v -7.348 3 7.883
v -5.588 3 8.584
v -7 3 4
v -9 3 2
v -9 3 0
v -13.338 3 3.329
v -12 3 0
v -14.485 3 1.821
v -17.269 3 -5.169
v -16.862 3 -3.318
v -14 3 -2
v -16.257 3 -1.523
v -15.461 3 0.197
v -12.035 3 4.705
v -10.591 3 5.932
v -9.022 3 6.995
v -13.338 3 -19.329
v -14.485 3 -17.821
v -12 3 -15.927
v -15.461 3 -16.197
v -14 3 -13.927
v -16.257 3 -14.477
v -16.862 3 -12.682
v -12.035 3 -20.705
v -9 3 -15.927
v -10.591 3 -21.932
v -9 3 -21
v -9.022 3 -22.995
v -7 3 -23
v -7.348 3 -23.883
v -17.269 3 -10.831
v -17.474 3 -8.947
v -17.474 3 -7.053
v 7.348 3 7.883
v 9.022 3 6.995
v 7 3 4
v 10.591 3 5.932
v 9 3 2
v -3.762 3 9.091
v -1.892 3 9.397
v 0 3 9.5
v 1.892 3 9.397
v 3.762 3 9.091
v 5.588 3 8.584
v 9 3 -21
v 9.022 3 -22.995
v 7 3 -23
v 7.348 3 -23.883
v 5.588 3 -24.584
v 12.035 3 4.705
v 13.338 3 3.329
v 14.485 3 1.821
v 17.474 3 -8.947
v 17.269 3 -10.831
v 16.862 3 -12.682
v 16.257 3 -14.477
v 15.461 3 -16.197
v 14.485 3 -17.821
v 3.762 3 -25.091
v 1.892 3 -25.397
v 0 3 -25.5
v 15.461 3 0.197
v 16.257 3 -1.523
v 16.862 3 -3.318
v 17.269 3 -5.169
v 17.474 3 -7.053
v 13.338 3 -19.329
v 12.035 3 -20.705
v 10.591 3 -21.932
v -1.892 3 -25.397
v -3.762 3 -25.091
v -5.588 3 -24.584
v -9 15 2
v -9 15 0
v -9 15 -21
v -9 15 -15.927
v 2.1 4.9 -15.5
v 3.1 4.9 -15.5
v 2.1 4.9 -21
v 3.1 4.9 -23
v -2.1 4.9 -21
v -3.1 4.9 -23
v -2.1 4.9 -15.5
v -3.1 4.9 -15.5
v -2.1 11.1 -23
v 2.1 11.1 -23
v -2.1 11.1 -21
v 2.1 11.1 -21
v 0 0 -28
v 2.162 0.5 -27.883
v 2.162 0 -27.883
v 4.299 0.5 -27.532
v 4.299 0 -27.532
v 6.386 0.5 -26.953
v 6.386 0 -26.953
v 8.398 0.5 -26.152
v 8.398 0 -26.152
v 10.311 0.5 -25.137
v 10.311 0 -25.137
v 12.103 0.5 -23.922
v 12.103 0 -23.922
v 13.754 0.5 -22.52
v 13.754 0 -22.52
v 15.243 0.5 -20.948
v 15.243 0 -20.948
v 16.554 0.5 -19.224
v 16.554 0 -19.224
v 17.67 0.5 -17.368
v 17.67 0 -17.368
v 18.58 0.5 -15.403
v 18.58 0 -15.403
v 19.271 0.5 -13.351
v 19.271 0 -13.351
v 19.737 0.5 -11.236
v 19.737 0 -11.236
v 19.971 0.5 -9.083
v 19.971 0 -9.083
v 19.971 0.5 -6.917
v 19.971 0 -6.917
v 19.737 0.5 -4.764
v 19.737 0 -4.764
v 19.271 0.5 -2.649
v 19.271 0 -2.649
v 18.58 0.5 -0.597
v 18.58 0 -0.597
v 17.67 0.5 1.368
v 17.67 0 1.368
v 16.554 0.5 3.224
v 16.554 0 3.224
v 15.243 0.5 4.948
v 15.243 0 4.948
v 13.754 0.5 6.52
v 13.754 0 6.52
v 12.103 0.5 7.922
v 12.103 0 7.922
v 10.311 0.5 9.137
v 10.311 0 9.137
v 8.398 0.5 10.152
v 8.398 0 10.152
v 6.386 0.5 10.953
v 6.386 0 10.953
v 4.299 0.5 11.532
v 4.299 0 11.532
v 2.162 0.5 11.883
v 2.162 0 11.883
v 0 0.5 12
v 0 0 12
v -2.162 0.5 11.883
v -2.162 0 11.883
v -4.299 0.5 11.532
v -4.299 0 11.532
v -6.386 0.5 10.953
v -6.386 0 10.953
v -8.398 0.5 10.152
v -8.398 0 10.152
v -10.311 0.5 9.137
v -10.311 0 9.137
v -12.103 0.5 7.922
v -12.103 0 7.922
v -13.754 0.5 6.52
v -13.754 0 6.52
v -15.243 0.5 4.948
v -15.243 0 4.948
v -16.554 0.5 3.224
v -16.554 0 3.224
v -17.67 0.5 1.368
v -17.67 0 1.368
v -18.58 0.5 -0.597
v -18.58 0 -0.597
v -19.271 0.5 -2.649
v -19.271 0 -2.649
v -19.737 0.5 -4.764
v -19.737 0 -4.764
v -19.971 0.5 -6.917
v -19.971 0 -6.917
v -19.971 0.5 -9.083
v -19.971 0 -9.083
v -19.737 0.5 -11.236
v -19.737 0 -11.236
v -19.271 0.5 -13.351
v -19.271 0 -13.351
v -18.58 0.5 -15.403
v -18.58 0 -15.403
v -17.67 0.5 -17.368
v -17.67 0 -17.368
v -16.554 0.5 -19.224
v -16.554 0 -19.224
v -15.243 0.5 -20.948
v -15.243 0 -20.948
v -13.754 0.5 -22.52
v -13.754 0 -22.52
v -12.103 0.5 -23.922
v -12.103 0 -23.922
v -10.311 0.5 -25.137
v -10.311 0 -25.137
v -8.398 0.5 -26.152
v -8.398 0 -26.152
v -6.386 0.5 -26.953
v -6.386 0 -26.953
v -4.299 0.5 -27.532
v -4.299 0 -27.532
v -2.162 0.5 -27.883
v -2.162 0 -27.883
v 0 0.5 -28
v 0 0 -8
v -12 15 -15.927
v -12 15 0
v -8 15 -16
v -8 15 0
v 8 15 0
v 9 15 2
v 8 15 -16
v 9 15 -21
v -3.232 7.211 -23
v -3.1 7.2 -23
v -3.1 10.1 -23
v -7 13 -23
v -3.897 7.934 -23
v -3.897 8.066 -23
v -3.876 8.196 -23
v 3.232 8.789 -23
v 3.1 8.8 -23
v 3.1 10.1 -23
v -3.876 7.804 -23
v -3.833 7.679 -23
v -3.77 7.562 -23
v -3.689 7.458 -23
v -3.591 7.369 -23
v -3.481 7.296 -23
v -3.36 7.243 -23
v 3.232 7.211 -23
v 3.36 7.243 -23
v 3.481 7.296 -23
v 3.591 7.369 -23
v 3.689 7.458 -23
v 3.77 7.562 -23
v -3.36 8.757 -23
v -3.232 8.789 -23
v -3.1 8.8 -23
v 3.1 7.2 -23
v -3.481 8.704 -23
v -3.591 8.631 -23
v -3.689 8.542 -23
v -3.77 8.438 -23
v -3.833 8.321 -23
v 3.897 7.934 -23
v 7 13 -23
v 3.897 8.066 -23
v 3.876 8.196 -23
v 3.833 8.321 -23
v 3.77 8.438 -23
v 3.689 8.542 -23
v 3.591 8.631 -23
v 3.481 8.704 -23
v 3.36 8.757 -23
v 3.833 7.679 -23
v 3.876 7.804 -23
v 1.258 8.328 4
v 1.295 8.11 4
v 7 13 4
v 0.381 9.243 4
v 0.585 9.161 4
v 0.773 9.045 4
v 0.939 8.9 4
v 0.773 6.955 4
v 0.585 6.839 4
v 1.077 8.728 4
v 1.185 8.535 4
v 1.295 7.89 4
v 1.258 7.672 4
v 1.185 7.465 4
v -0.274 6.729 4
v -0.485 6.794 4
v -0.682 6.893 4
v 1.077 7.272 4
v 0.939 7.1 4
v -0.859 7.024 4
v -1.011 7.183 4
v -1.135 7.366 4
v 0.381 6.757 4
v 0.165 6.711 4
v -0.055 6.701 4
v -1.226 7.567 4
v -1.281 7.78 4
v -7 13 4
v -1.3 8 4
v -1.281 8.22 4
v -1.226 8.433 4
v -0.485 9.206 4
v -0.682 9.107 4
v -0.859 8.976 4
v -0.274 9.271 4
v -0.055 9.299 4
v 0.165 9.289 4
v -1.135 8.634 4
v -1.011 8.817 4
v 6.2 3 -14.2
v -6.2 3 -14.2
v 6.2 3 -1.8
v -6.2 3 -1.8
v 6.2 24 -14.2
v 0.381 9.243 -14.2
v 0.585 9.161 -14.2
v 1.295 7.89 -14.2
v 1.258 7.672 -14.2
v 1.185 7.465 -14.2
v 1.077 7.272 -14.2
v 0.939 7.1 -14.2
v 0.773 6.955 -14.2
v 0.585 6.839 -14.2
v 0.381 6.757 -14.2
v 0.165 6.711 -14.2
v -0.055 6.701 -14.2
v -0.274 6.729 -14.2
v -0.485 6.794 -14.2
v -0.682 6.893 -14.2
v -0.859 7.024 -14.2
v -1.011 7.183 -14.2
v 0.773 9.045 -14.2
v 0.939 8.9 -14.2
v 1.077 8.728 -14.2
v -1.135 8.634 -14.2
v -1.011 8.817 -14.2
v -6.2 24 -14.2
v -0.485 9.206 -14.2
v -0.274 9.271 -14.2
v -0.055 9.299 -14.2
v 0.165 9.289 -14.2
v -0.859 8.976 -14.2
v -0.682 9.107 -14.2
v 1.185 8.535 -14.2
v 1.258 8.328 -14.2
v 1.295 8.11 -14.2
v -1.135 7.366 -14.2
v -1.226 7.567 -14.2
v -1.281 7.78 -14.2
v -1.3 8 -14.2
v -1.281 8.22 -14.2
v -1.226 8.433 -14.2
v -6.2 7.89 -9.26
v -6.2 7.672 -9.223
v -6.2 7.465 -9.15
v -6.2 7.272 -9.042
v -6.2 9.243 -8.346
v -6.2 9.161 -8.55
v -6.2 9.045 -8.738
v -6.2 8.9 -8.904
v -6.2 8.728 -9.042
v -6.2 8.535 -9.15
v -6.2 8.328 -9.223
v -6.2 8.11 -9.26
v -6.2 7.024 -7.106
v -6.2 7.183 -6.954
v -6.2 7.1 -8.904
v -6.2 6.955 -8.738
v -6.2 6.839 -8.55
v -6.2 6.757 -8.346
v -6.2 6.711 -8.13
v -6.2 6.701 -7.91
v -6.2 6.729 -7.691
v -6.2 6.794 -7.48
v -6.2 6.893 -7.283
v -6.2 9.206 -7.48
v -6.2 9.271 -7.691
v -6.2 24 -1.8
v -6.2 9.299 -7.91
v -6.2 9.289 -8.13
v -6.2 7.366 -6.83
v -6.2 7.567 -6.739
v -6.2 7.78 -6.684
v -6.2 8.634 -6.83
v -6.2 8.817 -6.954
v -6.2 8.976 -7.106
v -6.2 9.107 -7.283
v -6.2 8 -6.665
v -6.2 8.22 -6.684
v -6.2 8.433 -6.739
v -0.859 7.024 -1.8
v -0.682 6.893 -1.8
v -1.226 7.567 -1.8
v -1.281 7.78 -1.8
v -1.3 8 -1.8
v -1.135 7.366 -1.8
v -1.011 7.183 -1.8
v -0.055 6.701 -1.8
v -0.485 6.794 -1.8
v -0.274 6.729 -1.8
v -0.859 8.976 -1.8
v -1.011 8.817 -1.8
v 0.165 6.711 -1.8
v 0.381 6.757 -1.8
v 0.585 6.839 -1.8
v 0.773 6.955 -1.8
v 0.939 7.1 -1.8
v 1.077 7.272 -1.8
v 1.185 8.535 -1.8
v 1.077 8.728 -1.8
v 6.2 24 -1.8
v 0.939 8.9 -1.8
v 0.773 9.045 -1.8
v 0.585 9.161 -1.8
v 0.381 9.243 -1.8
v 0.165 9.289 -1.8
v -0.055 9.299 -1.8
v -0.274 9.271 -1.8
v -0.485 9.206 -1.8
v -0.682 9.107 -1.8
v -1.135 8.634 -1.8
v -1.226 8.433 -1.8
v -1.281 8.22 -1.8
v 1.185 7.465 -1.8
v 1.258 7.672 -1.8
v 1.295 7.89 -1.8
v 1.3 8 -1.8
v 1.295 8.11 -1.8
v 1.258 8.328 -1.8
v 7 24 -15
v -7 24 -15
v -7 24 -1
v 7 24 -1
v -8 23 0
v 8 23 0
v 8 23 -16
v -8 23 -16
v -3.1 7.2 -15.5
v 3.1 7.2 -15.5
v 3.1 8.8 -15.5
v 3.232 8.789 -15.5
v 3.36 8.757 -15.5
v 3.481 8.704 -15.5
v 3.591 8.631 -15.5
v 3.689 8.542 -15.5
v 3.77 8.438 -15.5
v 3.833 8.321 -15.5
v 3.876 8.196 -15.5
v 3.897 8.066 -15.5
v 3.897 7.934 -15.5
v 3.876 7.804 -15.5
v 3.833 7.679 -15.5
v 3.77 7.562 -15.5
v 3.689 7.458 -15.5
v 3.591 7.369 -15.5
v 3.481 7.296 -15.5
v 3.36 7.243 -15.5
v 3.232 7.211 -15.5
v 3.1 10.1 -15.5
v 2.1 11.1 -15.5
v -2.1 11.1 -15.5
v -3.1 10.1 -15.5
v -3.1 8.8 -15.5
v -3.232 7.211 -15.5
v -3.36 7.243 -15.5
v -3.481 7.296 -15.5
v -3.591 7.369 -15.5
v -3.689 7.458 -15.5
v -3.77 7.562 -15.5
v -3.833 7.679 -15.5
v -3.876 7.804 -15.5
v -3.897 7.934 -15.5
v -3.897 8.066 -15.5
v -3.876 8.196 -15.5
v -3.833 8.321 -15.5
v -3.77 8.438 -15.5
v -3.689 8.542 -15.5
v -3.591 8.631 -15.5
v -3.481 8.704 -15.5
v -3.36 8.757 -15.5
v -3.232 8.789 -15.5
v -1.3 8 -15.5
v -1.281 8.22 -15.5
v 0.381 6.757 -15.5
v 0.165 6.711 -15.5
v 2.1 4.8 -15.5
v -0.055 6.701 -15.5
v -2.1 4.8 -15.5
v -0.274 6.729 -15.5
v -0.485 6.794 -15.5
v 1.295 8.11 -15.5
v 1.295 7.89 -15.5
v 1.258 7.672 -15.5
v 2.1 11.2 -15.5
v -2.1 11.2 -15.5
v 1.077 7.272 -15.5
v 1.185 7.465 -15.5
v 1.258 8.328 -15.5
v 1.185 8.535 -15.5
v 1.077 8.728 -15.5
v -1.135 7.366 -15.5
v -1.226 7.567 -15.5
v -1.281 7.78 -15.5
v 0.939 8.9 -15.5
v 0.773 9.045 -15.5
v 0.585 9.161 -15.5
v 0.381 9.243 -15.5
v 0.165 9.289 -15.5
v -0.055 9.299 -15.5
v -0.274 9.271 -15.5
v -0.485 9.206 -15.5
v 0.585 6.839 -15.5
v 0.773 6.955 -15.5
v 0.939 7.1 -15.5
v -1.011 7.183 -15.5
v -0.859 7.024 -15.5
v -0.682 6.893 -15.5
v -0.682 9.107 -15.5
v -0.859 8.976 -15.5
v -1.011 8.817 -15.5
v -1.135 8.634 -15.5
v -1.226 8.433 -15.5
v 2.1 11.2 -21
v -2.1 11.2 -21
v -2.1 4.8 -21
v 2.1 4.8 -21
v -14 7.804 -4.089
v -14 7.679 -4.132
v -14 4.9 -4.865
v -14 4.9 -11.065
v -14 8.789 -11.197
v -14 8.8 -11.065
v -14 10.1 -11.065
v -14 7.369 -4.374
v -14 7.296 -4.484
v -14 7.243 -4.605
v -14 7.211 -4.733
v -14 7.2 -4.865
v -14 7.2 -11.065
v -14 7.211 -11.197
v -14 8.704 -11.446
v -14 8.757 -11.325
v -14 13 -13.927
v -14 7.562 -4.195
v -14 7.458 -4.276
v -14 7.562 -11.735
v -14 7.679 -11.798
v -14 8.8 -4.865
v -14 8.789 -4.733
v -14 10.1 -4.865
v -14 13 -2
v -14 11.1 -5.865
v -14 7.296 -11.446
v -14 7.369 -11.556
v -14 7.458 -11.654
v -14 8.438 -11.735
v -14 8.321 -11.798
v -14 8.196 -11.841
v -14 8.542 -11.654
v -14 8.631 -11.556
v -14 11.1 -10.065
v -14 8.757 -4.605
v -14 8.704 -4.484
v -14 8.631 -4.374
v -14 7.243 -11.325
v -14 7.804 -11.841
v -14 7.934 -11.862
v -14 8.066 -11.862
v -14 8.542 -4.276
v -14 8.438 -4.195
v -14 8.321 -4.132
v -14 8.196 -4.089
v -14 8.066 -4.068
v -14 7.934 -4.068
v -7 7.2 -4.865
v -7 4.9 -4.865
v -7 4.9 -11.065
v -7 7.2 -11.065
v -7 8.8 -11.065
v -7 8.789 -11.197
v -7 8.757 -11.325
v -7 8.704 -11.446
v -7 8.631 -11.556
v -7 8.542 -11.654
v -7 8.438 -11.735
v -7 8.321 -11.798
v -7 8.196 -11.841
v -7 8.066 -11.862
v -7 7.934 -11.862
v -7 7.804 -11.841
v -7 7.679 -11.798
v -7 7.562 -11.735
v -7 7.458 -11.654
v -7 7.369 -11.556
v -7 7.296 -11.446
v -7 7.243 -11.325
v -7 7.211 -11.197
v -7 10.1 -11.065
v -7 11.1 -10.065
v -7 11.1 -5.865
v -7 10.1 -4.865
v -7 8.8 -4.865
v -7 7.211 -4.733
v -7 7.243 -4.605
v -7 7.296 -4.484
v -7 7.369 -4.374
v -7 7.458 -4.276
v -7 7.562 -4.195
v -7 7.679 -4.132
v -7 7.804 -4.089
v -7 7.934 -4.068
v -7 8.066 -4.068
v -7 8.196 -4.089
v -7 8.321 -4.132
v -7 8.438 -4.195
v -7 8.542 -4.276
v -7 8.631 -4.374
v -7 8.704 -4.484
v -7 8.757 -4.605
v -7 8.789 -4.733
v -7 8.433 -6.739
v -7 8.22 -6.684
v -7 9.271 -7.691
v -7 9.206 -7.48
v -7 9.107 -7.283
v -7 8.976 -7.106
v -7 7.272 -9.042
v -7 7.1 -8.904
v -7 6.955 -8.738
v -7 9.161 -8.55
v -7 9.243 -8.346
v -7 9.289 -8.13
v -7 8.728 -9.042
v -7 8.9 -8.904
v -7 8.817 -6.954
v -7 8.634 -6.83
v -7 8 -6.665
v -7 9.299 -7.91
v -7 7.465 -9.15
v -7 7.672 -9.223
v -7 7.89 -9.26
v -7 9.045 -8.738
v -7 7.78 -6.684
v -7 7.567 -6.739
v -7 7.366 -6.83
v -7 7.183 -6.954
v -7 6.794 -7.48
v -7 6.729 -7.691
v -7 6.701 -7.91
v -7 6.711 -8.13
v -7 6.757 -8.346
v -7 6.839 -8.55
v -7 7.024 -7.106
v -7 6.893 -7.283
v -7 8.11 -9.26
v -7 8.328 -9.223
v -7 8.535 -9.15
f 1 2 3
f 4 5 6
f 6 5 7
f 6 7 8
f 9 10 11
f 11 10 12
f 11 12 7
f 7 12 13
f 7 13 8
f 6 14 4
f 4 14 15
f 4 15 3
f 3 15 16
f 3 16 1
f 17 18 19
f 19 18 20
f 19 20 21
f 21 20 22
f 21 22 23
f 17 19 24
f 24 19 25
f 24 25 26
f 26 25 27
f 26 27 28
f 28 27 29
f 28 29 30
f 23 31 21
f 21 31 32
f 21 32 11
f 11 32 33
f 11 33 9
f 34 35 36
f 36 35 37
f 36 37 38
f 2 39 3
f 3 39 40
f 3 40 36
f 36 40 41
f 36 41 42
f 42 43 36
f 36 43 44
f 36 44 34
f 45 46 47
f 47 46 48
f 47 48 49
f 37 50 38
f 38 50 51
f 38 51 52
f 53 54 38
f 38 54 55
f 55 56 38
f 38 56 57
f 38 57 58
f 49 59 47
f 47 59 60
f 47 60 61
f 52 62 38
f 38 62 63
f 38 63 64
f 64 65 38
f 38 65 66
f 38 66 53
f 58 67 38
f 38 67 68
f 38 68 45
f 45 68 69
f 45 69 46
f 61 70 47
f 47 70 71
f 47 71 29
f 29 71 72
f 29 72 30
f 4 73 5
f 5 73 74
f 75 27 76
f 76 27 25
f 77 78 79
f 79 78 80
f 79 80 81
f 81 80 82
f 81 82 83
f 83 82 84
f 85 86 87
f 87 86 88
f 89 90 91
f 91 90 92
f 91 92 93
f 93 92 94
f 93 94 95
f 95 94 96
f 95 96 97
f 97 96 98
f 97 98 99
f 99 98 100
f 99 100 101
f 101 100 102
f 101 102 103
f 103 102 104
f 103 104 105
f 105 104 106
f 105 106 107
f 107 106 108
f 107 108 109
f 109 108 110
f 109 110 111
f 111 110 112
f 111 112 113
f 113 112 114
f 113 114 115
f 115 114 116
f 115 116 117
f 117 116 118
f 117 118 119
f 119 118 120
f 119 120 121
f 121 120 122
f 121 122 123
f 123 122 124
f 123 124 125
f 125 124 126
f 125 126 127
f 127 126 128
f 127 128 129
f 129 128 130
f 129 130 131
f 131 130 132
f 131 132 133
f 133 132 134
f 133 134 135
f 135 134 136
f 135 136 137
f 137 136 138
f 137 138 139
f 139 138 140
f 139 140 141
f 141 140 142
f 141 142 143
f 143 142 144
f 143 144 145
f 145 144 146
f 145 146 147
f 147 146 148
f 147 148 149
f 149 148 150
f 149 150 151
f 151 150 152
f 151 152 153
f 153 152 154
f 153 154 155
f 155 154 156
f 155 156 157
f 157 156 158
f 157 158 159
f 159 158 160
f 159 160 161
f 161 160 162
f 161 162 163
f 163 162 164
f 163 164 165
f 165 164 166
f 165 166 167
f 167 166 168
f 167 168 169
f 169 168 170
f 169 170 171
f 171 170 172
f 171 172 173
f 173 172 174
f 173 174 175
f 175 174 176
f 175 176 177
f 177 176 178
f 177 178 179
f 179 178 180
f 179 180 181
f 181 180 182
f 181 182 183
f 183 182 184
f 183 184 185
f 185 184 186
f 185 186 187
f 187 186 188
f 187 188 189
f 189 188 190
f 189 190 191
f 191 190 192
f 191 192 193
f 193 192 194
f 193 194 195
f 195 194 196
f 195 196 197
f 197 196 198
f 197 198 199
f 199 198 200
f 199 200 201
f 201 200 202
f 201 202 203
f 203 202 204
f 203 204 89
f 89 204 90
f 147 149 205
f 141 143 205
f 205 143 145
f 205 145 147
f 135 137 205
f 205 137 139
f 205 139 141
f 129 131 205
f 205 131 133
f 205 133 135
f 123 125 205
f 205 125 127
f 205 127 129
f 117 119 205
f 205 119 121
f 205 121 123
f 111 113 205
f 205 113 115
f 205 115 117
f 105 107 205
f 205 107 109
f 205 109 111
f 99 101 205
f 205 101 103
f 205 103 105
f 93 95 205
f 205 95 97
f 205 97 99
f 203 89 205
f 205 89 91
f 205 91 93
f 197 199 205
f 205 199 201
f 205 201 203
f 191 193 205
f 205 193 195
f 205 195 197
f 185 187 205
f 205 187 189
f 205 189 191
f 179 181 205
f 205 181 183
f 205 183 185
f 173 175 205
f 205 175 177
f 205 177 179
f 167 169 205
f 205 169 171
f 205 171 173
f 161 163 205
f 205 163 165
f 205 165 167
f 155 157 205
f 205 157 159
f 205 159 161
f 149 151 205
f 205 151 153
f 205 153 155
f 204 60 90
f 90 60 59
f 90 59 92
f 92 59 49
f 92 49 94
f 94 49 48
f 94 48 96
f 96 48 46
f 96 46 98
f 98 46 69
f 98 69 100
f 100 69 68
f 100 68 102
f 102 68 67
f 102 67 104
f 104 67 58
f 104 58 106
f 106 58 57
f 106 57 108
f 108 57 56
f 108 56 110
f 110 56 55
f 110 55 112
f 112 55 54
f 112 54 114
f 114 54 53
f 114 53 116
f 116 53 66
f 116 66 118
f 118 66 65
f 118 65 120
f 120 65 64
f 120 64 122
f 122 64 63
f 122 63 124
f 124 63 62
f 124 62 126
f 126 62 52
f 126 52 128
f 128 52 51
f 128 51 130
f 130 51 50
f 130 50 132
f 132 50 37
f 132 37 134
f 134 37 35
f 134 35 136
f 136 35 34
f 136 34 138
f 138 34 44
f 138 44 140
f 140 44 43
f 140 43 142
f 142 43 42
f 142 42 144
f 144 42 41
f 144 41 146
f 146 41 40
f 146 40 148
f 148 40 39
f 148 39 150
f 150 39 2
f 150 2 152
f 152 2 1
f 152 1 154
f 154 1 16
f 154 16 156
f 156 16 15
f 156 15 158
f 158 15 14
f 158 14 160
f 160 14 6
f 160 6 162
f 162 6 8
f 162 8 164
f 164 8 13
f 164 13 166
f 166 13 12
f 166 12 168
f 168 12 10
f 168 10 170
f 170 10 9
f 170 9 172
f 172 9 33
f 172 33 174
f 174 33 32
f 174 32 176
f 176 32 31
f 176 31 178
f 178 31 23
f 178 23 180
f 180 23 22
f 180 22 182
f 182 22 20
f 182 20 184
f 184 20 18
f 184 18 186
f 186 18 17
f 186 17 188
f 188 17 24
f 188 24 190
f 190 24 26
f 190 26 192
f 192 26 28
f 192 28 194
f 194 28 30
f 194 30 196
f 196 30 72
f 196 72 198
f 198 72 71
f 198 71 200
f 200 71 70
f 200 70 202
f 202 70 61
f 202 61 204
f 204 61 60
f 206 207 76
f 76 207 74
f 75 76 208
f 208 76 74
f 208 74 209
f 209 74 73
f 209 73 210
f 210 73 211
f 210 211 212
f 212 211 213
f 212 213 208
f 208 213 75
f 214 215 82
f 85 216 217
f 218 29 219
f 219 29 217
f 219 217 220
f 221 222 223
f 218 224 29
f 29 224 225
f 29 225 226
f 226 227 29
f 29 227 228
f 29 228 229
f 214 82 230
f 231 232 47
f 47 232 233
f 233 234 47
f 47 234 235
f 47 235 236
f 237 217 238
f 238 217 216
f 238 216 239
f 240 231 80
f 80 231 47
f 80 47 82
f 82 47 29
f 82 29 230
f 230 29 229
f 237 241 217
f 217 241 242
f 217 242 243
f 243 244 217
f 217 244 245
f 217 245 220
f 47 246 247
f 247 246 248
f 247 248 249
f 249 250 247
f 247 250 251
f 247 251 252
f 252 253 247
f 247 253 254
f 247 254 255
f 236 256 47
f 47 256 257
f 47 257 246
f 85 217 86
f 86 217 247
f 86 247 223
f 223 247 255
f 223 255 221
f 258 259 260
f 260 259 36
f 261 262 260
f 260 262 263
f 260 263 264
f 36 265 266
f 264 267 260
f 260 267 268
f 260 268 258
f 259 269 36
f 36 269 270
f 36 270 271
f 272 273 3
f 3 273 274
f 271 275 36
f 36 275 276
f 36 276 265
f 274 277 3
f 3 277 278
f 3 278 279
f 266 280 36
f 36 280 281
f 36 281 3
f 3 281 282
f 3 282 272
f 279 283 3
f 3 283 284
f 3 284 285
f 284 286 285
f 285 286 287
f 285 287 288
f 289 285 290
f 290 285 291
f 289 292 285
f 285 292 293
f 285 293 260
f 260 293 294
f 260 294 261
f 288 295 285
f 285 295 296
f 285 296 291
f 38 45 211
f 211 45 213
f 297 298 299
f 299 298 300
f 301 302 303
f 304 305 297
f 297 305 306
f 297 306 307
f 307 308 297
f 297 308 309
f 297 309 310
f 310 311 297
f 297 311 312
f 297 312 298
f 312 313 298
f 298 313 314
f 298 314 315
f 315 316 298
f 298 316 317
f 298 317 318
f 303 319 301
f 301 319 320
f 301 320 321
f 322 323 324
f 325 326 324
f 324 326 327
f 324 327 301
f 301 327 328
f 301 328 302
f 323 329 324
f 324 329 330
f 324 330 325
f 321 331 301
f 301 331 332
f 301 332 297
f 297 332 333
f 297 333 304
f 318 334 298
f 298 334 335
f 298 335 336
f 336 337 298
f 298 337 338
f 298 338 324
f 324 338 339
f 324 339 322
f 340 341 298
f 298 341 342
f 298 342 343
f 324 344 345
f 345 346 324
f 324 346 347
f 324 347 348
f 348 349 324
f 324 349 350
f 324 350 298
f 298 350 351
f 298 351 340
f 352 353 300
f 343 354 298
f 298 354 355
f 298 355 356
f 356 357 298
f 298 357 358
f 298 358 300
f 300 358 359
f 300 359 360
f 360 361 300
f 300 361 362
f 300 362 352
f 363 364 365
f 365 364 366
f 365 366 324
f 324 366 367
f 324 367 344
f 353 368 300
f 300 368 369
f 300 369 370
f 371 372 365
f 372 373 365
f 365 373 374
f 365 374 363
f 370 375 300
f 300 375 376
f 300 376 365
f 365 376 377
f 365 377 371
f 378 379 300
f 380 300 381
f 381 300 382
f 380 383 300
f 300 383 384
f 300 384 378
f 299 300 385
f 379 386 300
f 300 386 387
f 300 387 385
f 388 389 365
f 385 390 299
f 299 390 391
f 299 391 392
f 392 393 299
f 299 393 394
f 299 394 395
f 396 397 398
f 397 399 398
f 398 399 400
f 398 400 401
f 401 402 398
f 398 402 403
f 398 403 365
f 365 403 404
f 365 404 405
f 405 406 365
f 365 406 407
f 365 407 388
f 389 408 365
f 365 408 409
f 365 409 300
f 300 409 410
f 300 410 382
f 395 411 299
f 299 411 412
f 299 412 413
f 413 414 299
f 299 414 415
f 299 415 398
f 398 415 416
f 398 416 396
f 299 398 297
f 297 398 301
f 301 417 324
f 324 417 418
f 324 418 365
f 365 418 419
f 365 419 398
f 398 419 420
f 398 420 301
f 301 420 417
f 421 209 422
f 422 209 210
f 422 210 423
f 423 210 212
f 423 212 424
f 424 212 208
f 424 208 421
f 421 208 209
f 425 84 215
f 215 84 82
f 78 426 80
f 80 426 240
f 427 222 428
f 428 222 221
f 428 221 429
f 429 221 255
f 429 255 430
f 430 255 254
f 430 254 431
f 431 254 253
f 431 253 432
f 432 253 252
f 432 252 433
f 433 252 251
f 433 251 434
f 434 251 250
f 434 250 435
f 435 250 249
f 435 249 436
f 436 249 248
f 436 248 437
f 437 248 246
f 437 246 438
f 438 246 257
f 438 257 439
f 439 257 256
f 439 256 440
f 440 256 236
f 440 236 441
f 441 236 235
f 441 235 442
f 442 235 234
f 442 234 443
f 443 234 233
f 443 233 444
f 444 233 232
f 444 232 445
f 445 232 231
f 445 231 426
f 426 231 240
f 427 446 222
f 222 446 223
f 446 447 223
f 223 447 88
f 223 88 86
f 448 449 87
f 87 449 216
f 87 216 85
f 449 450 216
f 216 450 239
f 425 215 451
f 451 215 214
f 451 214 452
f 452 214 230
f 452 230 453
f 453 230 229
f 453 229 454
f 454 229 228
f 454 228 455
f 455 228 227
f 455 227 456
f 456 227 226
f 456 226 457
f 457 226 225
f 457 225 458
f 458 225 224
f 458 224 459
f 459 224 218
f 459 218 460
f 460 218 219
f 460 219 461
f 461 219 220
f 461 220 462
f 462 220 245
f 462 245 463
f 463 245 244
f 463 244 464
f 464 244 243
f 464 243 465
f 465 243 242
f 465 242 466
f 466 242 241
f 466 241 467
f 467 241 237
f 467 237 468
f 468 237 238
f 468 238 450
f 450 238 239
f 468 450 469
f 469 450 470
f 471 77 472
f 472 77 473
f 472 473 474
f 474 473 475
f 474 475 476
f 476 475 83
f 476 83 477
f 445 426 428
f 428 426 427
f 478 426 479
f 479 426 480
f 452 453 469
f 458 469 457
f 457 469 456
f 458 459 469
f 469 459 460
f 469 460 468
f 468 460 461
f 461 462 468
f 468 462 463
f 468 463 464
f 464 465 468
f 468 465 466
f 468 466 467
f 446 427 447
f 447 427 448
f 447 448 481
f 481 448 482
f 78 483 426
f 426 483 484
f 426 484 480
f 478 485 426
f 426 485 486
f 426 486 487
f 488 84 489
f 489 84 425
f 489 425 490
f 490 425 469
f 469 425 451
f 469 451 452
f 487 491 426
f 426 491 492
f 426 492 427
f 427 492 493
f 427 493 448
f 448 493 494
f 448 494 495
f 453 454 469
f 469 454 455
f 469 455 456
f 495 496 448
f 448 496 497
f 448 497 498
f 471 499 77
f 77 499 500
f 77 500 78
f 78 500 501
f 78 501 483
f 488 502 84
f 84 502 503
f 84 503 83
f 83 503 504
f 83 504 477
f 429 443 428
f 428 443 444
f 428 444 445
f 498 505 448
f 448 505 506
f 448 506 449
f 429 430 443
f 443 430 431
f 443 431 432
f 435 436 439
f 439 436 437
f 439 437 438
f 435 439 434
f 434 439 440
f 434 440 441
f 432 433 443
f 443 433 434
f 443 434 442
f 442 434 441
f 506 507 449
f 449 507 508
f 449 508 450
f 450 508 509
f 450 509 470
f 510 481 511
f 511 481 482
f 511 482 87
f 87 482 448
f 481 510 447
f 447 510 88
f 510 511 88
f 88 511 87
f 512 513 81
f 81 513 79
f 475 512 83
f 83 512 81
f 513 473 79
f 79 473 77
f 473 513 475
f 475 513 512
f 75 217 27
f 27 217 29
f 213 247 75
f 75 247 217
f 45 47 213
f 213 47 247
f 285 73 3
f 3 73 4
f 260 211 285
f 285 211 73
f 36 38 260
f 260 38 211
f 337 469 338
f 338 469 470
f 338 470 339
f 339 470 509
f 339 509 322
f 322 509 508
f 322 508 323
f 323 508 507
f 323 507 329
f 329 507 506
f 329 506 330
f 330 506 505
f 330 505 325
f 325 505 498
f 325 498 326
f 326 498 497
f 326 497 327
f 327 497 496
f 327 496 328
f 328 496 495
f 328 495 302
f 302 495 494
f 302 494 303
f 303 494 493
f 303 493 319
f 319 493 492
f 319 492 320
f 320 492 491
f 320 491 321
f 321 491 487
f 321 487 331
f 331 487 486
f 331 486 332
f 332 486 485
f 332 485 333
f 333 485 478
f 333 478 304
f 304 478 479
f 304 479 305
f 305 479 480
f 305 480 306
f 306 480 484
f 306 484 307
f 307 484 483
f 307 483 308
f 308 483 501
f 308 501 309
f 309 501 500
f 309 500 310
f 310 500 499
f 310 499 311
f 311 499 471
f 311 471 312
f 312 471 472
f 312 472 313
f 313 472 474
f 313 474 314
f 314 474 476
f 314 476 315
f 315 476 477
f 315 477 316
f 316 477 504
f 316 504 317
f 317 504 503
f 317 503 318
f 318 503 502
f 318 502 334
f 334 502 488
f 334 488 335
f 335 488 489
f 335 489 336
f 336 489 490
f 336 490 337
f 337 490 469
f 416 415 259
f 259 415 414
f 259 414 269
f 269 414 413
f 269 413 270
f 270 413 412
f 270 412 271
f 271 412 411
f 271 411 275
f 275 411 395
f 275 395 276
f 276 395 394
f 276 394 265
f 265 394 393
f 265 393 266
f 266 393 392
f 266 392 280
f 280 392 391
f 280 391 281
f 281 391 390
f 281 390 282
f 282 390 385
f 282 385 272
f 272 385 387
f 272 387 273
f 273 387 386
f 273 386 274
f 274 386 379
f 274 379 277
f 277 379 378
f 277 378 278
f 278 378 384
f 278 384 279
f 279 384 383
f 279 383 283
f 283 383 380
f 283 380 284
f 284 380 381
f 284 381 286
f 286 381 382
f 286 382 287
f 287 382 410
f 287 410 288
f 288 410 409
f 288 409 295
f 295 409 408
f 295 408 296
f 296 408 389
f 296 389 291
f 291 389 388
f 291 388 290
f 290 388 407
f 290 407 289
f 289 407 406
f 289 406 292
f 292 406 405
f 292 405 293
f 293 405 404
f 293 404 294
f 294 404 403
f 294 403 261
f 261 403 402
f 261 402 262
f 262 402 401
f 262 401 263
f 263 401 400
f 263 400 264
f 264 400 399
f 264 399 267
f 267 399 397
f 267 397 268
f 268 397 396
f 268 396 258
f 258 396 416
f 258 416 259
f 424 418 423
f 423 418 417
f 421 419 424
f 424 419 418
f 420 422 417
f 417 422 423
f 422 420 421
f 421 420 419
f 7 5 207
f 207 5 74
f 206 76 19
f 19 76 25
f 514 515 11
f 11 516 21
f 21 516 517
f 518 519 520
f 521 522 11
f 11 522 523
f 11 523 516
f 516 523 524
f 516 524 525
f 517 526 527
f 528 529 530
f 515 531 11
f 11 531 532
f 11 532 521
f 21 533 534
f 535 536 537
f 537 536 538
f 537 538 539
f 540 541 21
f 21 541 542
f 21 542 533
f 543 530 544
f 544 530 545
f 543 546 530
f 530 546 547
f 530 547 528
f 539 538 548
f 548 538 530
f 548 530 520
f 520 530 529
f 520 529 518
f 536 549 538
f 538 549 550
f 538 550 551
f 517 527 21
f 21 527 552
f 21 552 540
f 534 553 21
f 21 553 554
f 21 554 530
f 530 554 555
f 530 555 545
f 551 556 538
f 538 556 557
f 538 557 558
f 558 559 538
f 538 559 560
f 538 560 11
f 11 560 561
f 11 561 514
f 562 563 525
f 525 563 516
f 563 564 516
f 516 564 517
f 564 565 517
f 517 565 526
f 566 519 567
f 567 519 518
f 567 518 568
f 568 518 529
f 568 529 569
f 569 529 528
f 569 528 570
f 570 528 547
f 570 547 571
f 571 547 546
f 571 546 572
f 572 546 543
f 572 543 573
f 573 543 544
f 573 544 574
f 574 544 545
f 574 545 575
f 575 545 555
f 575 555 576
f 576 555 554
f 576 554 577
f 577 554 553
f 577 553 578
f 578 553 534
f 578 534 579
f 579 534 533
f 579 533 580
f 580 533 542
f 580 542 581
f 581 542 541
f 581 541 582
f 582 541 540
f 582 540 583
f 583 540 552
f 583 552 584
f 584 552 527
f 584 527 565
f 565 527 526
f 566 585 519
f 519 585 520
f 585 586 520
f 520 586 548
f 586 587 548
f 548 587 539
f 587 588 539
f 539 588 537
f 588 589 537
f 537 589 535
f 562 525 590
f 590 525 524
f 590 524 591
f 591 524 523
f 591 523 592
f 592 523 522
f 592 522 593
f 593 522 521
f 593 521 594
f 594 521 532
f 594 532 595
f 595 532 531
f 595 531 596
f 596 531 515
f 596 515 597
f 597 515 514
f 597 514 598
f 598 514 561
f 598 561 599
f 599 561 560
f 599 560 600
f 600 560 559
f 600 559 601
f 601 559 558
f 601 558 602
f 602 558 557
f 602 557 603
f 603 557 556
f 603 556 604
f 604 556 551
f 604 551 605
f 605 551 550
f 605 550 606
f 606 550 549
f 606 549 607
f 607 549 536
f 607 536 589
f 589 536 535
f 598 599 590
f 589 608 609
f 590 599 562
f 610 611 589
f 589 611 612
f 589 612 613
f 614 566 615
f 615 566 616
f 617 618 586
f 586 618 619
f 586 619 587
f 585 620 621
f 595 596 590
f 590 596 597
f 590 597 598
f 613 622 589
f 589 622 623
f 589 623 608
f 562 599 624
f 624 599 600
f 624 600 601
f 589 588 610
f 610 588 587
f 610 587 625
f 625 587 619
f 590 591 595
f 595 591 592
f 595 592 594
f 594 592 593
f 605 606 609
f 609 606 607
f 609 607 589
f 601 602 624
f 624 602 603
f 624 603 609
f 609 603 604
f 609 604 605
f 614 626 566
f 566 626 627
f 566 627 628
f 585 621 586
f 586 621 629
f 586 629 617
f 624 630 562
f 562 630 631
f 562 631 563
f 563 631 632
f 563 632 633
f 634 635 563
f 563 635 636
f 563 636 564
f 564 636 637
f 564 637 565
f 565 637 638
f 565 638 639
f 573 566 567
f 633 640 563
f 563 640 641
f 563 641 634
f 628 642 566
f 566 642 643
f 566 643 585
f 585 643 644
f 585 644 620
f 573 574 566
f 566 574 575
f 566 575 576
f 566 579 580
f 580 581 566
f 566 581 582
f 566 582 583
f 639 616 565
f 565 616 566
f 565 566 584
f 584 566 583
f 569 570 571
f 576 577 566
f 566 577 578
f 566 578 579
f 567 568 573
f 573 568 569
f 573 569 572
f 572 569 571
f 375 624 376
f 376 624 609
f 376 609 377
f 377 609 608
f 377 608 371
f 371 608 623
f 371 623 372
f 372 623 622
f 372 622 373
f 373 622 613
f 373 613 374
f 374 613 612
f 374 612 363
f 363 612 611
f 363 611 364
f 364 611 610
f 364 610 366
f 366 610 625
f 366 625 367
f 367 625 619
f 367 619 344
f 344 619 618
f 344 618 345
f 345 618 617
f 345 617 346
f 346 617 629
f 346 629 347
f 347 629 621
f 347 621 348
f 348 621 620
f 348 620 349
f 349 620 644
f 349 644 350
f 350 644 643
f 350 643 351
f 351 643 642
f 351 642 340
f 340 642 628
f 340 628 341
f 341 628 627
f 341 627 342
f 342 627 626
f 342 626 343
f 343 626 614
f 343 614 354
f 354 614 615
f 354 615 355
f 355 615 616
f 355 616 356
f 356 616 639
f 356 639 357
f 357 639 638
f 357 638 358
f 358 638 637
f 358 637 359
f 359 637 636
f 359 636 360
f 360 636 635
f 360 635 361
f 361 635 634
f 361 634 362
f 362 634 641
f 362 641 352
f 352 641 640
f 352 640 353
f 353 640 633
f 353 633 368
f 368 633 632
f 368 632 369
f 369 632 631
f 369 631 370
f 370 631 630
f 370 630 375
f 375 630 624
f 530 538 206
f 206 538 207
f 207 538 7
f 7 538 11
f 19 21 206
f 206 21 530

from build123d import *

# Parameters (mm, degrees)
SKETCH1_W               = 16
SKETCH1_H               = 16
BOSS_EXTRUDE1_DEPTH     = 24
SKETCH12_W              = 12.4
SKETCH12_H              = 12.4
CUT_EXTRUDE6_DEPTH      = 22
SKETCH13_R              = 20
BOSS_EXTRUDE2_DEPTH     = 3
CHAMFER1_SIZE           = 2.5
SKETCH14_W              = 16
SKETCH14_H              = 16
BOSS_EXTRUDE3_DEPTH     = 12
CUT_EXTRUDE1_DEPTH      = 7.5
CUT_EXTRUDE5_DEPTH      = 6.3
CUT_EXTRUDE5_DEPTH_BACK = 0.1
SKETCH11_W              = 4.2
SKETCH11_H              = 5.5
CHAMFER2_SIZE           = 2
CHAMFER4_SIZE           = 2
SKETCH15_R              = 1.3
CUT_EXTRUDE7_DEPTH      = 42.620307543
CHAMFER5_SIZE           = 1
ESQUISSE3_W             = 15.926523834
ESQUISSE3_H             = 12
BOSS_EXTRU_1_DEPTH      = 5
ENL_V_MAT_EXTRU_1_DEPTH = 7
ESQUISSE5_R             = 1.3
ENL_V_MAT_EXTRU_2_DEPTH = 5
CHANFREIN2_SIZE         = 2
CHANFREIN3_SIZE         = 2
CHANFREIN4_SIZE         = 2


with BuildPart() as part:
    # Sketch1 → Boss-Extrude1 (new body)
    with BuildSketch(Plane(origin=(0, 0, 0), x_dir=(1, 0, 0), z_dir=(0, 1, 0))):
        with Locations((0, 8)):
            Rectangle(SKETCH1_W, SKETCH1_H)
    extrude(amount=BOSS_EXTRUDE1_DEPTH)

    # Sketch12 → Cut-Extrude6 (cut)
    with BuildSketch(Plane(origin=(0, 24, 0), x_dir=(1, 0, 0), z_dir=(0, 1, 0))):
        with Locations((0, 8)):
            Rectangle(SKETCH12_W, SKETCH12_H)
    extrude(amount=-CUT_EXTRUDE6_DEPTH, mode=Mode.SUBTRACT)

    # Sketch13 → Boss-Extrude2 (add)
    with BuildSketch(Plane(origin=(0, 0, 0), x_dir=(1, 0, 0), z_dir=(0, 1, 0))):
        with Locations(Location((0, 8, 0), (0, 0, 270))):
            Circle(SKETCH13_R)
    extrude(amount=BOSS_EXTRUDE2_DEPTH)

    # Chamfer1
    chamfer1_edges = [part.edges().sort_by_distance(p)[0] for p in [
        (0, 3, -28),
    ]]
    chamfer(chamfer1_edges, length=CHAMFER1_SIZE)

    # Sketch14 → Boss-Extrude3 (add)
    with BuildSketch(Plane(origin=(0, 3, 0), x_dir=(1, 0, 0), z_dir=(0, 1, 0))):
        Polygon((-8, 23), (8, 23), (9, 23), (9, -4), (8, -4), (-8, -4), (-9, -4), (-9, 23), align=None)
        with Locations((0, 8)):
            Rectangle(SKETCH14_W, SKETCH14_H, mode=Mode.SUBTRACT)
    extrude(amount=BOSS_EXTRUDE3_DEPTH)

    # Sketch5 → Cut-Extrude1 (cut)
    with BuildSketch(Plane(origin=(0, 0, -23), x_dir=(-1, 0, 0), z_dir=(0, 0, -1))):
        with BuildLine():
            Line((-2.1, 11.1), (2.1, 11.1))
            Line((2.1, 11.1), (3.1, 10.1))
            Line((3.1, 10.1), (3.1, 8.8))
            ThreePointArc((3.1, 8.8), (3.9, 8), (3.1, 7.2))
            Line((3.1, 7.2), (3.1, 4.9))
            Line((3.1, 4.9), (-3.1, 4.9))
            Line((-3.1, 4.9), (-3.1, 7.2))
            ThreePointArc((-3.1, 7.2), (-3.9, 8), (-3.1, 8.8))
            Line((-3.1, 8.8), (-3.1, 10.1))
            Line((-3.1, 10.1), (-2.1, 11.1))
        make_face()
    extrude(amount=-CUT_EXTRUDE1_DEPTH, mode=Mode.SUBTRACT)

    # Sketch11 → Cut-Extrude5 (cut, two sides: drawn at the far end of the back side and taken through both)
    with BuildSketch(Plane.XZ.offset(-11.1).offset(-CUT_EXTRUDE5_DEPTH_BACK)):
        with Locations((0, -18.25)):
            Rectangle(SKETCH11_W, SKETCH11_H)
    extrude(amount=CUT_EXTRUDE5_DEPTH + CUT_EXTRUDE5_DEPTH_BACK, mode=Mode.SUBTRACT)

    # Chamfer2
    chamfer2_edges = [part.edges().sort_by_distance(p)[0] for p in [
        (0, 15, -23),
        (9, 9, -23),
        (-9, 9, -23),
    ]]
    chamfer(chamfer2_edges, length=CHAMFER2_SIZE)

    # Chamfer4
    chamfer4_edges = [part.edges().sort_by_distance(p)[0] for p in [
        (0, 15, 4),
        (-9, 9, 4),
        (9, 9, 4),
    ]]
    chamfer(chamfer4_edges, length=CHAMFER4_SIZE)

    # Sketch15 → Cut-Extrude7 (cut, through all)
    with BuildSketch(Plane(origin=(0, 0, -15.5), x_dir=(-1, 0, 0), z_dir=(0, 0, -1))):
        with Locations((0, 8)):
            Circle(SKETCH15_R)
    extrude(amount=-CUT_EXTRUDE7_DEPTH, mode=Mode.SUBTRACT)

    # Chamfer5
    chamfer5_edges = [part.edges().sort_by_distance(p)[0] for p in [
        (0, 24, -16),
        (-8, 24, -8),
        (0, 24, 0),
        (8, 24, -8),
    ]]
    chamfer(chamfer5_edges, length=CHAMFER5_SIZE)

    # Esquisse3 → Boss.-Extru.1 (add)
    with BuildSketch(Plane.ZY.offset(9)):
        with Locations((-7.963261917, 9)):
            Rectangle(ESQUISSE3_W, ESQUISSE3_H)
    extrude(amount=BOSS_EXTRU_1_DEPTH)

    # Esquisse4 → Enlèv. mat.-Extru.1 (cut)
    with BuildSketch(Plane.ZY.offset(14)):
        with BuildLine():
            Line((-10.065, 11.1), (-5.865, 11.1))
            Line((-5.865, 11.1), (-4.865, 10.1))
            Line((-4.865, 10.1), (-4.865, 8.8))
            ThreePointArc((-4.865, 8.8), (-4.065, 8), (-4.865, 7.2))
            Line((-4.865, 7.2), (-4.865, 4.9))
            Line((-4.865, 4.9), (-11.065, 4.9))
            Line((-11.065, 4.9), (-11.065, 7.2))
            ThreePointArc((-11.065, 7.2), (-11.865, 8), (-11.065, 8.8))
            Line((-11.065, 8.8), (-11.065, 10.1))
            Line((-11.065, 10.1), (-10.065, 11.1))
        make_face()
    extrude(amount=-ENL_V_MAT_EXTRU_1_DEPTH, mode=Mode.SUBTRACT)

    # Esquisse5 → Enlèv. mat.-Extru.2 (cut)
    with BuildSketch(Plane.ZY.offset(7)):
        with Locations((-7.965, 8)):
            Circle(ESQUISSE5_R)
    extrude(amount=-ENL_V_MAT_EXTRU_2_DEPTH, mode=Mode.SUBTRACT)

    # Chanfrein2
    chanfrein2_edges = [part.edges().sort_by_distance(p)[0] for p in [
        (-14, 15, -7.963261917),
    ]]
    chamfer(chanfrein2_edges, length=CHANFREIN2_SIZE)

    # Chanfrein3
    chanfrein3_edges = [part.edges().sort_by_distance(p)[0] for p in [
        (-14, 8, 0),
    ]]
    chamfer(chanfrein3_edges, length=CHANFREIN3_SIZE)

    # Chanfrein4
    chanfrein4_edges = [part.edges().sort_by_distance(p)[0] for p in [
        (-14, 8, -15.926523834),
    ]]
    chamfer(chanfrein4_edges, length=CHANFREIN4_SIZE)


solid = part.part
